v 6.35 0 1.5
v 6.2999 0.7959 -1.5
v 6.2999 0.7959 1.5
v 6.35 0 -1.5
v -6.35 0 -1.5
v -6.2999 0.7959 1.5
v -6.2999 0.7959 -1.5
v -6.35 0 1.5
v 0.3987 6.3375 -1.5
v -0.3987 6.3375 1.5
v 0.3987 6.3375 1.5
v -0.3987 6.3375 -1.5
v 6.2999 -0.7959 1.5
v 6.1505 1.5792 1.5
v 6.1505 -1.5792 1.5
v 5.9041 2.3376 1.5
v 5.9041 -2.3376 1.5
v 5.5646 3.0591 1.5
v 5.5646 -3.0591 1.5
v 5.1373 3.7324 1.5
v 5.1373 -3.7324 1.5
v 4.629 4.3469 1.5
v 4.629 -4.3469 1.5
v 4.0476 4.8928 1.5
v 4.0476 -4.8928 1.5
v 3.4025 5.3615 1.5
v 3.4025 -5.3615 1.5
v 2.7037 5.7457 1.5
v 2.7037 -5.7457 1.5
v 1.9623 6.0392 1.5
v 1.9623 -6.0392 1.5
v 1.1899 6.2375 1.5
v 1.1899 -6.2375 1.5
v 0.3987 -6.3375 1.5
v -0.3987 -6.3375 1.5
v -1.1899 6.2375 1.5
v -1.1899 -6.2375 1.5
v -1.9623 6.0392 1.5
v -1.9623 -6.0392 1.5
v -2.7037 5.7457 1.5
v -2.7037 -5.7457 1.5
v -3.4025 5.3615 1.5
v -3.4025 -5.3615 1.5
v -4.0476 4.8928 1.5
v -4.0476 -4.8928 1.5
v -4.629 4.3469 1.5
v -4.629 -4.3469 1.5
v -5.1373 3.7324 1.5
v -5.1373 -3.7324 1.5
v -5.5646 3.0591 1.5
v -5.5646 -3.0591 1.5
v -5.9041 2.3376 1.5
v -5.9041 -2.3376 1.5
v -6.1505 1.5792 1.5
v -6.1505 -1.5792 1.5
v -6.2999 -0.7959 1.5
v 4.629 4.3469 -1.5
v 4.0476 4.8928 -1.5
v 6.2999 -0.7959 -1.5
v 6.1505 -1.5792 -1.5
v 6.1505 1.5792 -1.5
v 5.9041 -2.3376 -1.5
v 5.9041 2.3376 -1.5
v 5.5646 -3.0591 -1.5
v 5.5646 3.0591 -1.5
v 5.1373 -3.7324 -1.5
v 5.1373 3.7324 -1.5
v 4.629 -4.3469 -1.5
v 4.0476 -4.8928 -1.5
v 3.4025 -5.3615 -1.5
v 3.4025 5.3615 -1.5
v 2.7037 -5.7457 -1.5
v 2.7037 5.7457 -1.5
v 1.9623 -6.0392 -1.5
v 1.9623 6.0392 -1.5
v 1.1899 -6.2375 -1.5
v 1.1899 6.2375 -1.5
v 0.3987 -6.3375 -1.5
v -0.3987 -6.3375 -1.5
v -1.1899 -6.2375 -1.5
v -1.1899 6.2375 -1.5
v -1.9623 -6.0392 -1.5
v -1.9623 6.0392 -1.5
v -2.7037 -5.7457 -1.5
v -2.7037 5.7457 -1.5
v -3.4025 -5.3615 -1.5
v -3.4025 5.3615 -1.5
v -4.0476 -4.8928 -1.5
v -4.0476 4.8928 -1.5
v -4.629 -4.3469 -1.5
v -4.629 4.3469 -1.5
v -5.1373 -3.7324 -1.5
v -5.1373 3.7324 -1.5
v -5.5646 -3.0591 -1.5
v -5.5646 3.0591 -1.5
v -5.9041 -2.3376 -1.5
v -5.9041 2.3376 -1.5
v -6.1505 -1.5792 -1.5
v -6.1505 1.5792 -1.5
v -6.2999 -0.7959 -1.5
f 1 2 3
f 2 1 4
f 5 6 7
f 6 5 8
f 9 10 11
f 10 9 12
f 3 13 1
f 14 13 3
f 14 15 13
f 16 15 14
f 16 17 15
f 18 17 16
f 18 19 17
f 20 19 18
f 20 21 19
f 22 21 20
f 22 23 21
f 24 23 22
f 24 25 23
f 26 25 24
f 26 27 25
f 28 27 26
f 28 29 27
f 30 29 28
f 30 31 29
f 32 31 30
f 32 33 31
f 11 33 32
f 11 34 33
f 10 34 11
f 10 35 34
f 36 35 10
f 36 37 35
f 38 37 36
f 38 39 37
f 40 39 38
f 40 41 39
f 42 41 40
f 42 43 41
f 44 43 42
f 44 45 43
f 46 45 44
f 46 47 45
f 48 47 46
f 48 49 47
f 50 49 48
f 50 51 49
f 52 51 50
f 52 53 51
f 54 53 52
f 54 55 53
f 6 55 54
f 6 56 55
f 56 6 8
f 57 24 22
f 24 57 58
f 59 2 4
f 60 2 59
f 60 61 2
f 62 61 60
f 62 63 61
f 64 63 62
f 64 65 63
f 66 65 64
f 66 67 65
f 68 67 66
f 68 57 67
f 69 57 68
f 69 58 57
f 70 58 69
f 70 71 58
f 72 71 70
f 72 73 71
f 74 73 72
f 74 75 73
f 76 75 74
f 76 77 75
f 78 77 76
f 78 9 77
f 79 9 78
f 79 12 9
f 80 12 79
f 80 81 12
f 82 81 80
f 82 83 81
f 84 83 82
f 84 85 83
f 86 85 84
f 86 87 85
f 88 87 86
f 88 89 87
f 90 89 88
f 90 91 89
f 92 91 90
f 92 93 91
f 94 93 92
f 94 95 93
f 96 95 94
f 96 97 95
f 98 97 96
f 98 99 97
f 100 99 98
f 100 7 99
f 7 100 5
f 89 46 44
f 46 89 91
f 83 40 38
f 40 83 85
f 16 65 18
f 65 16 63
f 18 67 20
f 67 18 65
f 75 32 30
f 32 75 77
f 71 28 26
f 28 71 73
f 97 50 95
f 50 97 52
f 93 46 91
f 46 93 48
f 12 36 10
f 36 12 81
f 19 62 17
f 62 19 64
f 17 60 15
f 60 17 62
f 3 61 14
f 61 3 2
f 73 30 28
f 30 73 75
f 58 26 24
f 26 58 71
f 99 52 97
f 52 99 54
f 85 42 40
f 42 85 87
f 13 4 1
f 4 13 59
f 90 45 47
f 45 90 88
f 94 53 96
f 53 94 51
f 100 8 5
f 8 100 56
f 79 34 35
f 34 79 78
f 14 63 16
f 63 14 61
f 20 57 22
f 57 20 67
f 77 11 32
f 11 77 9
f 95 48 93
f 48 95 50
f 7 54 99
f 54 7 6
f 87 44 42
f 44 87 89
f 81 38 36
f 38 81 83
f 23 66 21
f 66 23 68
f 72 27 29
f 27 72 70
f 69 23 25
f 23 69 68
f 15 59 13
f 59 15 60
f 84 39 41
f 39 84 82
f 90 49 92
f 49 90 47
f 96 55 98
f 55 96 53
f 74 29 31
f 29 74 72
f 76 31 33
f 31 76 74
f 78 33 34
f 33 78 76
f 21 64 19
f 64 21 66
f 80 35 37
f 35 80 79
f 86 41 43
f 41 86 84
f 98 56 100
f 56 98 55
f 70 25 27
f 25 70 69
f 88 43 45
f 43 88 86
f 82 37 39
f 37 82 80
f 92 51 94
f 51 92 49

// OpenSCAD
$fn = 50;


difference() {
	union() {
		translate(v = [0, 0, -1.5000000000]) {
			cylinder(h = 3, r = 6.3500000000);
		}
	}
	union() {
		translate(v = [0, 0, -100.0000000000]) {
			cylinder(h = 200, r = 0);
		}
	}
}
